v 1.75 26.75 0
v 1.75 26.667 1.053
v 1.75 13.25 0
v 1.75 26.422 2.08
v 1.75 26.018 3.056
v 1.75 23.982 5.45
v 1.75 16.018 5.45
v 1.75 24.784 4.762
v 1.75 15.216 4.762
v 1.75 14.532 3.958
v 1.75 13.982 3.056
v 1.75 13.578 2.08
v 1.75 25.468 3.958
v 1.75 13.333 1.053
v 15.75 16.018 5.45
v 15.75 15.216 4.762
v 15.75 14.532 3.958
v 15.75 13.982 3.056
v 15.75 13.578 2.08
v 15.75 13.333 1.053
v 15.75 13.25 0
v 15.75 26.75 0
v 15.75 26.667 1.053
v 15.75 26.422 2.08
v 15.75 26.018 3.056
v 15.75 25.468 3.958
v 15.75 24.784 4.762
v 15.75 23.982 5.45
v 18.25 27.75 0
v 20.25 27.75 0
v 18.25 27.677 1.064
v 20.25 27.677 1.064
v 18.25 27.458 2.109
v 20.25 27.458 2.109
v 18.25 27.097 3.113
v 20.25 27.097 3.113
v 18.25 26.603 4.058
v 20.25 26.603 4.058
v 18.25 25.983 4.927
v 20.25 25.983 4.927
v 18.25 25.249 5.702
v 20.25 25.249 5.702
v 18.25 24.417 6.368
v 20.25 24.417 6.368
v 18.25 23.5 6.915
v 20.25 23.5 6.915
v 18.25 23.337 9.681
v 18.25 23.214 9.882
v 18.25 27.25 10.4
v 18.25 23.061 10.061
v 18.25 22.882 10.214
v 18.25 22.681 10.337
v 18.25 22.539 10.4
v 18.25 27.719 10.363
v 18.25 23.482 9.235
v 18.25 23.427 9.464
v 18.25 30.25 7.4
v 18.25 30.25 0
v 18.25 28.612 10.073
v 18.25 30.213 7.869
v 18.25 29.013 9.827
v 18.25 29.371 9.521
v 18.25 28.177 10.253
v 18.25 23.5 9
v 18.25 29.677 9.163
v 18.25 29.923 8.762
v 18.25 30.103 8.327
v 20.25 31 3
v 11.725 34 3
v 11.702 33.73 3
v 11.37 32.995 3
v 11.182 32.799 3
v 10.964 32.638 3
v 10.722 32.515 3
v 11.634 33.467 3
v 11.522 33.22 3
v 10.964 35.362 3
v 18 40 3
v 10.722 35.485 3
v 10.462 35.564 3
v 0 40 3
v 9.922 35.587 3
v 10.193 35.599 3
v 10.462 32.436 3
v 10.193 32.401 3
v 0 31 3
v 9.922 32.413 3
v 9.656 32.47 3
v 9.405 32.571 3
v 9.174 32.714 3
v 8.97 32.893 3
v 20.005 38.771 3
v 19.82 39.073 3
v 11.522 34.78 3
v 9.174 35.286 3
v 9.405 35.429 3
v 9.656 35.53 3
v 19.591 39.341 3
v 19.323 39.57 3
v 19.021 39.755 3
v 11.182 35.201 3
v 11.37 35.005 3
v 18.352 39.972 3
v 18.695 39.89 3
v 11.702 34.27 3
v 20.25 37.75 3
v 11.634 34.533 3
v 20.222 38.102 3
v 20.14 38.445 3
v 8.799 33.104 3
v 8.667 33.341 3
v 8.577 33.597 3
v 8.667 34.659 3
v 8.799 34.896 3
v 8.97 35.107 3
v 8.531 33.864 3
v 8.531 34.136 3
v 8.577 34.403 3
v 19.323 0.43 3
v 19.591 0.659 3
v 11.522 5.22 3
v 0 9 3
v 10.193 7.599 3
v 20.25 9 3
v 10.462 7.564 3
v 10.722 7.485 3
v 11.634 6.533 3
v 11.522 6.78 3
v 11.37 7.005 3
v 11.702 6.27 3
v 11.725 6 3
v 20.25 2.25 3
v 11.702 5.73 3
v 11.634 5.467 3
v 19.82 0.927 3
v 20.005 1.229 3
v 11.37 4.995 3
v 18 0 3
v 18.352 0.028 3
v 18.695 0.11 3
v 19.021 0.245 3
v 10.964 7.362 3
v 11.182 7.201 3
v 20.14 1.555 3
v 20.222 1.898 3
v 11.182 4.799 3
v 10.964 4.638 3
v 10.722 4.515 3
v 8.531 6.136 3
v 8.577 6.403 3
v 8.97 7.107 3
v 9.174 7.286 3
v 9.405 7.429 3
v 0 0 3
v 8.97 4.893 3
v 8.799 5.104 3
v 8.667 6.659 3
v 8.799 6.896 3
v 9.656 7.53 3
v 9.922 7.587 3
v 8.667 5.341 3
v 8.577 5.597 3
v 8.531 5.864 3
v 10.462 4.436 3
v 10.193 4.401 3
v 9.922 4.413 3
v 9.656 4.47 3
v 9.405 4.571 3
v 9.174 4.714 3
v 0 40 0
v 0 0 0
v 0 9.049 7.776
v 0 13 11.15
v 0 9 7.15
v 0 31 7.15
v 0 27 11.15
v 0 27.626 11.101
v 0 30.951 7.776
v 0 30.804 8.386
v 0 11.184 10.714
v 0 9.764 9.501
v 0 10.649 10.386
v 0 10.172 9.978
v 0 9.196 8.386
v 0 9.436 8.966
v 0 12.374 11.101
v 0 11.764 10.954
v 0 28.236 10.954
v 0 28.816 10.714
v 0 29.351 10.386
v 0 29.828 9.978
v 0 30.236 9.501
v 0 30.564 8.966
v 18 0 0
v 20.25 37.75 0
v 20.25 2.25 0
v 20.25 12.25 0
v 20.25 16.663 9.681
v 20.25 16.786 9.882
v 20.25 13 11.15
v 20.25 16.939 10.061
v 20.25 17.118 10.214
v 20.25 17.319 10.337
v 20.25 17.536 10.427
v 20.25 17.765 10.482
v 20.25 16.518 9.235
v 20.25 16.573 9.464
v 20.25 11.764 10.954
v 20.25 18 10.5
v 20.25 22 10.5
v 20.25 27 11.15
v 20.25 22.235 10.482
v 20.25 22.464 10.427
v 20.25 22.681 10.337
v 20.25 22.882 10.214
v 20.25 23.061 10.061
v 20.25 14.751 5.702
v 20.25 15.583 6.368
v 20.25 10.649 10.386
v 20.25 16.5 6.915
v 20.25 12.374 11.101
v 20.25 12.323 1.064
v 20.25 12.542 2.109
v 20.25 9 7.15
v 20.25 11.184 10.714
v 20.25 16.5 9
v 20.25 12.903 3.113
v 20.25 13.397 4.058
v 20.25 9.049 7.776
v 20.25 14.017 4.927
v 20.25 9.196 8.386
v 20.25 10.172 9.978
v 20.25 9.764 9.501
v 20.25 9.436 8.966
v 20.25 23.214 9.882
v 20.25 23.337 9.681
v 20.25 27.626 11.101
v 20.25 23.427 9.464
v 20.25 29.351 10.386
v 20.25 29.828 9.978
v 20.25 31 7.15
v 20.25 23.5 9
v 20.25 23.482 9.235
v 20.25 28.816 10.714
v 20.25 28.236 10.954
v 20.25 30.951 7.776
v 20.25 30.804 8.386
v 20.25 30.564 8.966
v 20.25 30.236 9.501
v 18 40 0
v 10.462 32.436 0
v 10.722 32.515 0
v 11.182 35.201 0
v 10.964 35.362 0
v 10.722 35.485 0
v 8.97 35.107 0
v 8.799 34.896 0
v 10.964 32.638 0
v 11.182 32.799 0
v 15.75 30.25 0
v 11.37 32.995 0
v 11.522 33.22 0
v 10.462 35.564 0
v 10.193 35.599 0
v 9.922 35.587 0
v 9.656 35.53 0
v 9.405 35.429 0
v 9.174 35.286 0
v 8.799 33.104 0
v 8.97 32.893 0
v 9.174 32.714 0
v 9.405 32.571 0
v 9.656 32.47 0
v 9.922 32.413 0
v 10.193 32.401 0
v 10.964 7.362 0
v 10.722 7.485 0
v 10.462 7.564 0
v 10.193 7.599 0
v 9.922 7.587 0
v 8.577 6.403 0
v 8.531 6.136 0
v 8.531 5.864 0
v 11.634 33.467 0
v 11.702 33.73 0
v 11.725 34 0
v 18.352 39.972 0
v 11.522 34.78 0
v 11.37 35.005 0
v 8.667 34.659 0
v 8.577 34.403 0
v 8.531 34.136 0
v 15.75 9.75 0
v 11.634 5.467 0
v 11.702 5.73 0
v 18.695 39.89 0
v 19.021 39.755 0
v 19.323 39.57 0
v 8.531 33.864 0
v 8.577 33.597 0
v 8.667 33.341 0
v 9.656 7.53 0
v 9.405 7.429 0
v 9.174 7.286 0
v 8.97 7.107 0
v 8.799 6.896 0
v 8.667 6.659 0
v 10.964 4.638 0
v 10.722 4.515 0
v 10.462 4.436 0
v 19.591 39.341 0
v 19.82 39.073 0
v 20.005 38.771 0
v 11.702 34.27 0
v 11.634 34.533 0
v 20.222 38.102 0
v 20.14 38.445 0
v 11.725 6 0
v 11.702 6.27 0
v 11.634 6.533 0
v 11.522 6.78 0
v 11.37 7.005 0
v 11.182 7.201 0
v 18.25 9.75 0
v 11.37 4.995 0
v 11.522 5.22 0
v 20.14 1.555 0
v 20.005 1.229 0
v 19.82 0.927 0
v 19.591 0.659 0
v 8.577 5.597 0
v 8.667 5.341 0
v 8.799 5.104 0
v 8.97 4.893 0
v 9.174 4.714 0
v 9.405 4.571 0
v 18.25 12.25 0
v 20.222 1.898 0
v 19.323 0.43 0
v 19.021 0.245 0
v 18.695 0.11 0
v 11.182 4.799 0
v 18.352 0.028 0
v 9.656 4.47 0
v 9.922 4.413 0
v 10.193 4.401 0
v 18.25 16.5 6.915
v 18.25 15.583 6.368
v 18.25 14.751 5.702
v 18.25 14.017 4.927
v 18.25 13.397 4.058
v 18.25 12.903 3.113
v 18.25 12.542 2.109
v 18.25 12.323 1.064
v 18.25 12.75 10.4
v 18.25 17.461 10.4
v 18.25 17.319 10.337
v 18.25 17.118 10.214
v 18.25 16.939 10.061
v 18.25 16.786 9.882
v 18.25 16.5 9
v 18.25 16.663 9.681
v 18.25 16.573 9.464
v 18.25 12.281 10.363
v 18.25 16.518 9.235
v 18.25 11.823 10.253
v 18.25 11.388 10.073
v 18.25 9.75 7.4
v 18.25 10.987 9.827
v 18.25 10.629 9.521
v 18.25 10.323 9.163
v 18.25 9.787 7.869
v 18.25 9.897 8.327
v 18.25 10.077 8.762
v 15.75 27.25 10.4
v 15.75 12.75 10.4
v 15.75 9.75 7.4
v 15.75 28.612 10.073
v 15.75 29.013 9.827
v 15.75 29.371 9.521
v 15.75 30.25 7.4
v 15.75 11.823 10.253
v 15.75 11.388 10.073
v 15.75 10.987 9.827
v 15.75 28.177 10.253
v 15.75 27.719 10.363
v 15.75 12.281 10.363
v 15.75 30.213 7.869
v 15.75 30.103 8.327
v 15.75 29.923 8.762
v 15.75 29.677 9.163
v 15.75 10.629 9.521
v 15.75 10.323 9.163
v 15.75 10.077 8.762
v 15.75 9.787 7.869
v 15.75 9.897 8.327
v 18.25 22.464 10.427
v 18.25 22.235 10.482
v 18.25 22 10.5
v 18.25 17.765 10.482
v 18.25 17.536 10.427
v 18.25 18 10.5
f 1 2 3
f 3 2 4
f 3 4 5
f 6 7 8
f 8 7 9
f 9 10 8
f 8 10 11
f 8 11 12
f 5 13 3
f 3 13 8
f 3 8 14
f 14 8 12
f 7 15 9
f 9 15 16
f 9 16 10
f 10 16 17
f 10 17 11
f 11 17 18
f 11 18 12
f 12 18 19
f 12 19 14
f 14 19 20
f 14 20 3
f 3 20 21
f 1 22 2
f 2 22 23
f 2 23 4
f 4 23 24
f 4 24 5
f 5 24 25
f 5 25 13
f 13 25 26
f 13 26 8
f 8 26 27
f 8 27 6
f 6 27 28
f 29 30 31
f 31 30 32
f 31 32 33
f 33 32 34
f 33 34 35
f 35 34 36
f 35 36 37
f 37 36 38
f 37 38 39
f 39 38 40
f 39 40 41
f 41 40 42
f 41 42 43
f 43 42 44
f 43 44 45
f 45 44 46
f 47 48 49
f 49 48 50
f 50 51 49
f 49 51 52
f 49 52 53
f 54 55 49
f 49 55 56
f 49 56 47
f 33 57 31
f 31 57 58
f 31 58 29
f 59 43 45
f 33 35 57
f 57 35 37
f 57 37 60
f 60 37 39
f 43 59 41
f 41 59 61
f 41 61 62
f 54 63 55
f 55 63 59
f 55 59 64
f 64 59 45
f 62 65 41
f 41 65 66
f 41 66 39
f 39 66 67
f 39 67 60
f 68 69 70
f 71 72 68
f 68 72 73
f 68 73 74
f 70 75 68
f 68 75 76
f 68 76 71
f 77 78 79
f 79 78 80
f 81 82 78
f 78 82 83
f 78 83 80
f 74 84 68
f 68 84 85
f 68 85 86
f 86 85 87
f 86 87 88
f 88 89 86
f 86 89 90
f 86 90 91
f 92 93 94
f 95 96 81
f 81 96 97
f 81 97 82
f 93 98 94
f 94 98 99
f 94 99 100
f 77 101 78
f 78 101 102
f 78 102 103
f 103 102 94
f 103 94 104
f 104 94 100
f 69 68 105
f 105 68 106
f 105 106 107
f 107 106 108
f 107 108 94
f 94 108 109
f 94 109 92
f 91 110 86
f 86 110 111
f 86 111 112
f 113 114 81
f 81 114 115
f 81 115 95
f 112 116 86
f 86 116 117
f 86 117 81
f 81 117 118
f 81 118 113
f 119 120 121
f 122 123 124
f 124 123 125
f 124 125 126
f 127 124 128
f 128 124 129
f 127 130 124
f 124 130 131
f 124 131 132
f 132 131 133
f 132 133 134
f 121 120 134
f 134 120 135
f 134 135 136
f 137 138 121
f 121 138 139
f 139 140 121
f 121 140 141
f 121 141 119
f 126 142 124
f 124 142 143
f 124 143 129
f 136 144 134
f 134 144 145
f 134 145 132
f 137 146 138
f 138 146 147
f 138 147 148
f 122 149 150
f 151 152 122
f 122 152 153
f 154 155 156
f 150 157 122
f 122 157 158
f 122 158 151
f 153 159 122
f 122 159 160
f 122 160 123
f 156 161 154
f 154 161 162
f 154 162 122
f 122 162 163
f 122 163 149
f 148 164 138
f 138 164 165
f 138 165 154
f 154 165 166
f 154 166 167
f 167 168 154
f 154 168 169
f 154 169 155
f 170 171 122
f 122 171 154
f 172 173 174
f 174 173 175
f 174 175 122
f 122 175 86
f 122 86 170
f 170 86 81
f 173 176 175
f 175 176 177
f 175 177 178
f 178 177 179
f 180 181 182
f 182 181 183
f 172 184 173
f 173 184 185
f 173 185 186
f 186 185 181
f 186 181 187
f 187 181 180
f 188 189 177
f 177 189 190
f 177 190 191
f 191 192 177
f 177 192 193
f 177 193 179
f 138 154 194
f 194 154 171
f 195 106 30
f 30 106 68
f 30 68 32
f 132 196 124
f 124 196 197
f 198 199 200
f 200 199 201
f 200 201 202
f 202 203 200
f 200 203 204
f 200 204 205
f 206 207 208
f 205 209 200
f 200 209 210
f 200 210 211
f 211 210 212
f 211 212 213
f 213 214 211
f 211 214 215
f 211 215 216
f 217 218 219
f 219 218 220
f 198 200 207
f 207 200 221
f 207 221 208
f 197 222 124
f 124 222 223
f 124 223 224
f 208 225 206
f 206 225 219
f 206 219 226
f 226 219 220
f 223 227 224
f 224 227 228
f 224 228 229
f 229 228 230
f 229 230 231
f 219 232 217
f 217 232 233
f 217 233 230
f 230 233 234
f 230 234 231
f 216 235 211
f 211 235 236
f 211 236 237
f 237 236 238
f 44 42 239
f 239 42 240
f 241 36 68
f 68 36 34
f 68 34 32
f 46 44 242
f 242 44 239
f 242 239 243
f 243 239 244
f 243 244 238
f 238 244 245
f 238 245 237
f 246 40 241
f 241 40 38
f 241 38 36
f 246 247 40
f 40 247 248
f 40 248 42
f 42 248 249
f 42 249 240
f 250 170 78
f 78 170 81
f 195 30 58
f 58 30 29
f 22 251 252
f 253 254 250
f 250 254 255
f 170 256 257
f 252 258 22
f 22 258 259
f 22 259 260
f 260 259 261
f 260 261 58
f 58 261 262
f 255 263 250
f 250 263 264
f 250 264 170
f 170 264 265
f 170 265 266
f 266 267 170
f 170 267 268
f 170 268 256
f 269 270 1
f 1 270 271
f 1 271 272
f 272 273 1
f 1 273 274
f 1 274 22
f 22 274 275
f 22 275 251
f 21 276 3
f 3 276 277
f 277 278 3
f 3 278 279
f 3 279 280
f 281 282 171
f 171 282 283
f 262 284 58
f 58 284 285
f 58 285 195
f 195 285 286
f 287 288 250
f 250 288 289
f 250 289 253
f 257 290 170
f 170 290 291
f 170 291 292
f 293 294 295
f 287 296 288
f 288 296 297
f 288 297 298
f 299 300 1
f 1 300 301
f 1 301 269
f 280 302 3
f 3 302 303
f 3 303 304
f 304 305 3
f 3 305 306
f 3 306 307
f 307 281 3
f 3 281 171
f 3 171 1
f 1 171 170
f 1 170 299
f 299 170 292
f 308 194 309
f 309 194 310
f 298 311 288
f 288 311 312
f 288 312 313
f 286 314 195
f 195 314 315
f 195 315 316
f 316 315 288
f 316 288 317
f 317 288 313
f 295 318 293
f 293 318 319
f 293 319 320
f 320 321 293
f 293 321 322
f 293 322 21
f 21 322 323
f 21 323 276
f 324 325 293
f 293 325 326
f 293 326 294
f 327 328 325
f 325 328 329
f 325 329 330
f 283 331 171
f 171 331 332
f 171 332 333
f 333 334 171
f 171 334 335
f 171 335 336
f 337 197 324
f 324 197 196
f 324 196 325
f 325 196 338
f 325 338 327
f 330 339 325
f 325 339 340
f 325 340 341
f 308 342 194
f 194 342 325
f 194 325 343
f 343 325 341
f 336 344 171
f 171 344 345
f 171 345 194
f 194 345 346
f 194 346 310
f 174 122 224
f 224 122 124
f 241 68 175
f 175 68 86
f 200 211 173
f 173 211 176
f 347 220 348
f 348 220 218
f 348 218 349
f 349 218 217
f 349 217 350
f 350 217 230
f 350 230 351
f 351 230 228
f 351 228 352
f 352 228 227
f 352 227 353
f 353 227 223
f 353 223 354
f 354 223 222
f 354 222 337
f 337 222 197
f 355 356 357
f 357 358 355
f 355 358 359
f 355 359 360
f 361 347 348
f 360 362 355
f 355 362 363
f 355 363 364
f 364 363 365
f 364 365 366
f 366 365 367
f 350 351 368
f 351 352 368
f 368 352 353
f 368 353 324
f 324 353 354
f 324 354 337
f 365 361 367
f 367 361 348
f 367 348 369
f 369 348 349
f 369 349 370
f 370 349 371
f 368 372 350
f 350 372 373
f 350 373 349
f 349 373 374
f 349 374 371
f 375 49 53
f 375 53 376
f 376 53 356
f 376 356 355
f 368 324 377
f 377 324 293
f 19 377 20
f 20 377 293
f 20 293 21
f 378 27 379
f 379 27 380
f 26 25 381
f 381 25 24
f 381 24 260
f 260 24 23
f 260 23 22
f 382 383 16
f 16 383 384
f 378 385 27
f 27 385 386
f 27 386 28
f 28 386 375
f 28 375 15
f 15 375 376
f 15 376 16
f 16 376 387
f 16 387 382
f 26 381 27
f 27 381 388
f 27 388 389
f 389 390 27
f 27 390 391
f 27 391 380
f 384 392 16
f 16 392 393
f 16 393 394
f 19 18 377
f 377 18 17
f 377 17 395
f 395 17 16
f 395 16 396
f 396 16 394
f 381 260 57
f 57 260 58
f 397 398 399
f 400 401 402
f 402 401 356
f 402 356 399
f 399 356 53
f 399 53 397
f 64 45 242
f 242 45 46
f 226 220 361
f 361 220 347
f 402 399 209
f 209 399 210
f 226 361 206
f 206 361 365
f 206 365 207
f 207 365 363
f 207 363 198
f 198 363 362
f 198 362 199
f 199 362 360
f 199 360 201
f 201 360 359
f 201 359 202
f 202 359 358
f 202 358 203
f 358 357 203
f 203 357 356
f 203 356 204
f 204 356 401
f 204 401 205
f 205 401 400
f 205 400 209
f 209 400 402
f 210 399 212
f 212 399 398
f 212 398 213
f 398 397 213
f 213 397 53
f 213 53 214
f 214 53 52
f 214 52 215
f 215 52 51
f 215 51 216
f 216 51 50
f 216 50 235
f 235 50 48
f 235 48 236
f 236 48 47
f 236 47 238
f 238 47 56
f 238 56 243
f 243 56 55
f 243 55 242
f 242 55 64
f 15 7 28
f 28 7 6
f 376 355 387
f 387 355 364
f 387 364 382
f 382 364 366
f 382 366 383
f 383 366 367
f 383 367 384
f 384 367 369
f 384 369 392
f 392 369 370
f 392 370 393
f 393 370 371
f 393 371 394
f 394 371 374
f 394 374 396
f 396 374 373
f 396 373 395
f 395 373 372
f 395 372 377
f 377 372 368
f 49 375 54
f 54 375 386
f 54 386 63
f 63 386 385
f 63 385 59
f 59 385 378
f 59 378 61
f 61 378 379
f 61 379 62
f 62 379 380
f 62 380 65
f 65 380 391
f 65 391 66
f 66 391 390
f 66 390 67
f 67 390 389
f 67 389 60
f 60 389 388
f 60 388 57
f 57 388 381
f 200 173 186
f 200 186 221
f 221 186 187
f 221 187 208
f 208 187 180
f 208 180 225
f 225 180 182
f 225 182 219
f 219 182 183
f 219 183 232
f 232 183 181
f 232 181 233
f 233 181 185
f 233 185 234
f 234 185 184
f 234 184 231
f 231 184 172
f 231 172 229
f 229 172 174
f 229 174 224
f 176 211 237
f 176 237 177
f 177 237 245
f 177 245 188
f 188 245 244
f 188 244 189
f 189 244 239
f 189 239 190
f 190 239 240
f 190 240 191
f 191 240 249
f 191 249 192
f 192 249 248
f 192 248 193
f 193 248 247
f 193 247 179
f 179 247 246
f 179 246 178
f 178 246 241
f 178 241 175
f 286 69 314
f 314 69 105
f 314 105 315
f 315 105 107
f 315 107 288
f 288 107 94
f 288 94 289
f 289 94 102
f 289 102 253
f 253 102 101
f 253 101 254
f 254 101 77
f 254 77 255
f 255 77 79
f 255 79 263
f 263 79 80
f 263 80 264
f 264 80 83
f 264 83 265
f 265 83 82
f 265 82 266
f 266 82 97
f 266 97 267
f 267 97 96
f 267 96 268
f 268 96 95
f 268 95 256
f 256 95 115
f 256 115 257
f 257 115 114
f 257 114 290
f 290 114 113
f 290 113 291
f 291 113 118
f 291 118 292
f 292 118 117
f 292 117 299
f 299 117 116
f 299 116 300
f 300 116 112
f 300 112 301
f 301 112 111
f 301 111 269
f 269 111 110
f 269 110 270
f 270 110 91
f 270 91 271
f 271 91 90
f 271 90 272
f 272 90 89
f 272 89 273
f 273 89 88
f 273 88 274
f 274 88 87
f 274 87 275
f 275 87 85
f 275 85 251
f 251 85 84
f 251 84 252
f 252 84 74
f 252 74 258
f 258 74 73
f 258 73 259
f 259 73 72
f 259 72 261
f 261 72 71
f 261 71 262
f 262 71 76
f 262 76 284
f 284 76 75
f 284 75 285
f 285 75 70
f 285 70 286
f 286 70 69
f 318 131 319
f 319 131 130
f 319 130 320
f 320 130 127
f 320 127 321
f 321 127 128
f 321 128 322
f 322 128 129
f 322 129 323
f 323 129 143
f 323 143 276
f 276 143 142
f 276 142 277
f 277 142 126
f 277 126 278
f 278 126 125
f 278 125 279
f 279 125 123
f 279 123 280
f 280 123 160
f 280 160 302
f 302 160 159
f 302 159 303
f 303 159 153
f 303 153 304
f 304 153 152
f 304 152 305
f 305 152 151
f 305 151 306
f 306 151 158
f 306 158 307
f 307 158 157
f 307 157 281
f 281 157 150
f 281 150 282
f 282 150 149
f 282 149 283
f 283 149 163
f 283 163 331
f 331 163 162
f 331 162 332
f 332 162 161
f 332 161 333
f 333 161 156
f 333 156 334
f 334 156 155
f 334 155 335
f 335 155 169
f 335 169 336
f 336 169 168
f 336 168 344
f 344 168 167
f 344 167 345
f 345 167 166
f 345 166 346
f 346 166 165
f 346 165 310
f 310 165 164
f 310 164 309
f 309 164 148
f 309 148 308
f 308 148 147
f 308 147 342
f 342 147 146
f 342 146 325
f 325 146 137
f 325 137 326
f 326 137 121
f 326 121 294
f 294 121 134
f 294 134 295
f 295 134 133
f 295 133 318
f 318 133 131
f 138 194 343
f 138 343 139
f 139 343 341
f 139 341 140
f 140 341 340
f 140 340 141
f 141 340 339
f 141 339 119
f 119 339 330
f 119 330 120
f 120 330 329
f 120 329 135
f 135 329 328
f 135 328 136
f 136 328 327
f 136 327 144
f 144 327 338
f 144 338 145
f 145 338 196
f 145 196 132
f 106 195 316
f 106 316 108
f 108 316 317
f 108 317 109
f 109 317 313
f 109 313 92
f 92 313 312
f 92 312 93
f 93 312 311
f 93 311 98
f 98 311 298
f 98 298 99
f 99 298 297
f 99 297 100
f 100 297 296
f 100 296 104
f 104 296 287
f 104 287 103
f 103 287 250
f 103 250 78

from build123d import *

# Parameters (mm, degrees)
SKETCH1_W           = 20.25
SKETCH1_H           = 40
BODY_DEPTH          = 3
SKETCH2_W           = 20.25
SKETCH2_H           = 22
HIROSE_DEPTH        = 8.15
SKETCH3_W           = 2
SKETCH3_H           = 7.75
SKETCH4_W           = 2.5
SKETCH4_H           = 20.5
HIROSE_MID_DEPTH    = 10.4
CUT_EXTRUDE2_DEPTH  = 2
FILLET1_R           = 1.5
SKETCH7_W           = 14
SKETCH7_H           = 6.75
BOSS_EXTRUDE3_START = 14
BOSS_EXTRUDE3_DEPTH = 14
FILLET2_R           = 3
FILLET3_R           = 4
SKETCH9_R           = 1.6
CUT_EXTRUDE3_DEPTH  = 46.568464973
FILLET4_R           = 2.25


with BuildPart() as part:
    # Sketch1 → body (new body)
    with BuildSketch(Plane.XY):
        with Locations((10.125, 20)):
            Rectangle(SKETCH1_W, SKETCH1_H)
    extrude(amount=BODY_DEPTH)

    # Sketch2 → hirose (add)
    with BuildSketch(Plane.XY.offset(3)):
        with Locations((10.125, 20)):
            Rectangle(SKETCH2_W, SKETCH2_H)
    extrude(amount=HIROSE_DEPTH)

    # Sketch3 → hirose-front (revolve, cut)
    with BuildSketch(Plane(origin=(0, 0, 0), x_dir=(-1, 0, 0), z_dir=(0, 0, -1))):
        with Locations((-19.25, 23.875)):
            Rectangle(SKETCH3_W, SKETCH3_H)
    revolve(axis=Axis((20.25, 20, 0), (-1, 0, 0)), mode=Mode.SUBTRACT)

    # Sketch4 → hirose-mid (cut)
    with BuildSketch(Plane(origin=(0, 0, 0), x_dir=(-1, 0, 0), z_dir=(0, 0, -1))):
        with Locations((-17, 20)):
            Rectangle(SKETCH4_W, SKETCH4_H)
    extrude(amount=-HIROSE_MID_DEPTH, mode=Mode.SUBTRACT)

    # Sketch5 → Cut-Extrude2 (cut)
    with BuildSketch(Plane(origin=(20.25, 0, 0), x_dir=(0, 0, -1), z_dir=(1, 0, 0))):
        with BuildLine():
            Line((-10.5, 16.5), (-10.5, 23.5))
            Line((-10.5, 23.5), (-6.914658343, 23.5))
            ThreePointArc((-6.914658343, 23.5), (-7.75, 20), (-6.914658343, 16.5))
            Line((-6.914658343, 16.5), (-10.5, 16.5))
        make_face()
    extrude(amount=-CUT_EXTRUDE2_DEPTH, mode=Mode.SUBTRACT)

    # Fillet1
    # the kernel refuses this fillet: 1.5 mm, written as the material it adds along each edge
    with BuildSketch(Plane(origin=(20.25, 23.5, 10.5), x_dir=(0, -1, 0), z_dir=(-1, 0, 0)), Plane(origin=(20.25, 16.5, 10.5), x_dir=(0, 0, -1), z_dir=(-1, 0, 0))) as fillet1_piece_1:
        with BuildLine():
            CenterArc((FILLET1_R, -FILLET1_R), FILLET1_R, 90, 90)
            Line((0, -FILLET1_R), (0, 0))
            Line((0, 0), (FILLET1_R, 0))
        make_face()
    extrude(amount=2)

    # Sketch7 → Cut-Revolve2 (revolve, cut)
    with BuildSketch(Plane(origin=(0, 0, 0), x_dir=(-1, 0, 0), z_dir=(0, 0, -1))):
        with Locations((-8.75, 23.375)):
            Rectangle(SKETCH7_W, SKETCH7_H)
    revolve(axis=Axis((15.75, 20, 0), (-1, 0, 0)), mode=Mode.SUBTRACT)

    # Sketch8 → Boss-Extrude3 (add)
    with BuildSketch(Plane(origin=(1.75, 0, 0), x_dir=(0, 0, -1), z_dir=(1, 0, 0)).offset(BOSS_EXTRUDE3_START)):
        with BuildLine():
            Line((-5.45, 23.98246155), (-5.45, 16.01753845))
            ThreePointArc((-5.45, 16.01753845), (-6.75, 20), (-5.45, 23.98246155))
        make_face()
    extrude(amount=-BOSS_EXTRUDE3_DEPTH)

    # Fillet2
    fillet2_edges = [part.edges().sort_by_distance(p)[0] for p in [
        (17, 9.75, 10.4),
        (17, 30.25, 10.4),
    ]]
    fillet(fillet2_edges, radius=FILLET2_R)

    # Fillet3
    fillet3_edges = [part.edges().sort_by_distance(p)[0] for p in [
        (10.125, 9, 11.15),
        (10.125, 31, 11.15),
    ]]
    fillet(fillet3_edges, radius=FILLET3_R)

    # Sketch9 → Cut-Extrude3 (cut, through all)
    with BuildSketch(Plane.XY.offset(3)):
        with Locations((10.125, 34)):
            Circle(SKETCH9_R)
        with Locations((10.125, 6)):
            Circle(SKETCH9_R)
    extrude(amount=-CUT_EXTRUDE3_DEPTH, mode=Mode.SUBTRACT)

    # Fillet4
    fillet4_edges = [part.edges().sort_by_distance(p)[0] for p in [
        (20.25, 40, 1.5),
        (20.25, 0, 1.5),
    ]]
    fillet(fillet4_edges, radius=FILLET4_R)


solid = part.part
